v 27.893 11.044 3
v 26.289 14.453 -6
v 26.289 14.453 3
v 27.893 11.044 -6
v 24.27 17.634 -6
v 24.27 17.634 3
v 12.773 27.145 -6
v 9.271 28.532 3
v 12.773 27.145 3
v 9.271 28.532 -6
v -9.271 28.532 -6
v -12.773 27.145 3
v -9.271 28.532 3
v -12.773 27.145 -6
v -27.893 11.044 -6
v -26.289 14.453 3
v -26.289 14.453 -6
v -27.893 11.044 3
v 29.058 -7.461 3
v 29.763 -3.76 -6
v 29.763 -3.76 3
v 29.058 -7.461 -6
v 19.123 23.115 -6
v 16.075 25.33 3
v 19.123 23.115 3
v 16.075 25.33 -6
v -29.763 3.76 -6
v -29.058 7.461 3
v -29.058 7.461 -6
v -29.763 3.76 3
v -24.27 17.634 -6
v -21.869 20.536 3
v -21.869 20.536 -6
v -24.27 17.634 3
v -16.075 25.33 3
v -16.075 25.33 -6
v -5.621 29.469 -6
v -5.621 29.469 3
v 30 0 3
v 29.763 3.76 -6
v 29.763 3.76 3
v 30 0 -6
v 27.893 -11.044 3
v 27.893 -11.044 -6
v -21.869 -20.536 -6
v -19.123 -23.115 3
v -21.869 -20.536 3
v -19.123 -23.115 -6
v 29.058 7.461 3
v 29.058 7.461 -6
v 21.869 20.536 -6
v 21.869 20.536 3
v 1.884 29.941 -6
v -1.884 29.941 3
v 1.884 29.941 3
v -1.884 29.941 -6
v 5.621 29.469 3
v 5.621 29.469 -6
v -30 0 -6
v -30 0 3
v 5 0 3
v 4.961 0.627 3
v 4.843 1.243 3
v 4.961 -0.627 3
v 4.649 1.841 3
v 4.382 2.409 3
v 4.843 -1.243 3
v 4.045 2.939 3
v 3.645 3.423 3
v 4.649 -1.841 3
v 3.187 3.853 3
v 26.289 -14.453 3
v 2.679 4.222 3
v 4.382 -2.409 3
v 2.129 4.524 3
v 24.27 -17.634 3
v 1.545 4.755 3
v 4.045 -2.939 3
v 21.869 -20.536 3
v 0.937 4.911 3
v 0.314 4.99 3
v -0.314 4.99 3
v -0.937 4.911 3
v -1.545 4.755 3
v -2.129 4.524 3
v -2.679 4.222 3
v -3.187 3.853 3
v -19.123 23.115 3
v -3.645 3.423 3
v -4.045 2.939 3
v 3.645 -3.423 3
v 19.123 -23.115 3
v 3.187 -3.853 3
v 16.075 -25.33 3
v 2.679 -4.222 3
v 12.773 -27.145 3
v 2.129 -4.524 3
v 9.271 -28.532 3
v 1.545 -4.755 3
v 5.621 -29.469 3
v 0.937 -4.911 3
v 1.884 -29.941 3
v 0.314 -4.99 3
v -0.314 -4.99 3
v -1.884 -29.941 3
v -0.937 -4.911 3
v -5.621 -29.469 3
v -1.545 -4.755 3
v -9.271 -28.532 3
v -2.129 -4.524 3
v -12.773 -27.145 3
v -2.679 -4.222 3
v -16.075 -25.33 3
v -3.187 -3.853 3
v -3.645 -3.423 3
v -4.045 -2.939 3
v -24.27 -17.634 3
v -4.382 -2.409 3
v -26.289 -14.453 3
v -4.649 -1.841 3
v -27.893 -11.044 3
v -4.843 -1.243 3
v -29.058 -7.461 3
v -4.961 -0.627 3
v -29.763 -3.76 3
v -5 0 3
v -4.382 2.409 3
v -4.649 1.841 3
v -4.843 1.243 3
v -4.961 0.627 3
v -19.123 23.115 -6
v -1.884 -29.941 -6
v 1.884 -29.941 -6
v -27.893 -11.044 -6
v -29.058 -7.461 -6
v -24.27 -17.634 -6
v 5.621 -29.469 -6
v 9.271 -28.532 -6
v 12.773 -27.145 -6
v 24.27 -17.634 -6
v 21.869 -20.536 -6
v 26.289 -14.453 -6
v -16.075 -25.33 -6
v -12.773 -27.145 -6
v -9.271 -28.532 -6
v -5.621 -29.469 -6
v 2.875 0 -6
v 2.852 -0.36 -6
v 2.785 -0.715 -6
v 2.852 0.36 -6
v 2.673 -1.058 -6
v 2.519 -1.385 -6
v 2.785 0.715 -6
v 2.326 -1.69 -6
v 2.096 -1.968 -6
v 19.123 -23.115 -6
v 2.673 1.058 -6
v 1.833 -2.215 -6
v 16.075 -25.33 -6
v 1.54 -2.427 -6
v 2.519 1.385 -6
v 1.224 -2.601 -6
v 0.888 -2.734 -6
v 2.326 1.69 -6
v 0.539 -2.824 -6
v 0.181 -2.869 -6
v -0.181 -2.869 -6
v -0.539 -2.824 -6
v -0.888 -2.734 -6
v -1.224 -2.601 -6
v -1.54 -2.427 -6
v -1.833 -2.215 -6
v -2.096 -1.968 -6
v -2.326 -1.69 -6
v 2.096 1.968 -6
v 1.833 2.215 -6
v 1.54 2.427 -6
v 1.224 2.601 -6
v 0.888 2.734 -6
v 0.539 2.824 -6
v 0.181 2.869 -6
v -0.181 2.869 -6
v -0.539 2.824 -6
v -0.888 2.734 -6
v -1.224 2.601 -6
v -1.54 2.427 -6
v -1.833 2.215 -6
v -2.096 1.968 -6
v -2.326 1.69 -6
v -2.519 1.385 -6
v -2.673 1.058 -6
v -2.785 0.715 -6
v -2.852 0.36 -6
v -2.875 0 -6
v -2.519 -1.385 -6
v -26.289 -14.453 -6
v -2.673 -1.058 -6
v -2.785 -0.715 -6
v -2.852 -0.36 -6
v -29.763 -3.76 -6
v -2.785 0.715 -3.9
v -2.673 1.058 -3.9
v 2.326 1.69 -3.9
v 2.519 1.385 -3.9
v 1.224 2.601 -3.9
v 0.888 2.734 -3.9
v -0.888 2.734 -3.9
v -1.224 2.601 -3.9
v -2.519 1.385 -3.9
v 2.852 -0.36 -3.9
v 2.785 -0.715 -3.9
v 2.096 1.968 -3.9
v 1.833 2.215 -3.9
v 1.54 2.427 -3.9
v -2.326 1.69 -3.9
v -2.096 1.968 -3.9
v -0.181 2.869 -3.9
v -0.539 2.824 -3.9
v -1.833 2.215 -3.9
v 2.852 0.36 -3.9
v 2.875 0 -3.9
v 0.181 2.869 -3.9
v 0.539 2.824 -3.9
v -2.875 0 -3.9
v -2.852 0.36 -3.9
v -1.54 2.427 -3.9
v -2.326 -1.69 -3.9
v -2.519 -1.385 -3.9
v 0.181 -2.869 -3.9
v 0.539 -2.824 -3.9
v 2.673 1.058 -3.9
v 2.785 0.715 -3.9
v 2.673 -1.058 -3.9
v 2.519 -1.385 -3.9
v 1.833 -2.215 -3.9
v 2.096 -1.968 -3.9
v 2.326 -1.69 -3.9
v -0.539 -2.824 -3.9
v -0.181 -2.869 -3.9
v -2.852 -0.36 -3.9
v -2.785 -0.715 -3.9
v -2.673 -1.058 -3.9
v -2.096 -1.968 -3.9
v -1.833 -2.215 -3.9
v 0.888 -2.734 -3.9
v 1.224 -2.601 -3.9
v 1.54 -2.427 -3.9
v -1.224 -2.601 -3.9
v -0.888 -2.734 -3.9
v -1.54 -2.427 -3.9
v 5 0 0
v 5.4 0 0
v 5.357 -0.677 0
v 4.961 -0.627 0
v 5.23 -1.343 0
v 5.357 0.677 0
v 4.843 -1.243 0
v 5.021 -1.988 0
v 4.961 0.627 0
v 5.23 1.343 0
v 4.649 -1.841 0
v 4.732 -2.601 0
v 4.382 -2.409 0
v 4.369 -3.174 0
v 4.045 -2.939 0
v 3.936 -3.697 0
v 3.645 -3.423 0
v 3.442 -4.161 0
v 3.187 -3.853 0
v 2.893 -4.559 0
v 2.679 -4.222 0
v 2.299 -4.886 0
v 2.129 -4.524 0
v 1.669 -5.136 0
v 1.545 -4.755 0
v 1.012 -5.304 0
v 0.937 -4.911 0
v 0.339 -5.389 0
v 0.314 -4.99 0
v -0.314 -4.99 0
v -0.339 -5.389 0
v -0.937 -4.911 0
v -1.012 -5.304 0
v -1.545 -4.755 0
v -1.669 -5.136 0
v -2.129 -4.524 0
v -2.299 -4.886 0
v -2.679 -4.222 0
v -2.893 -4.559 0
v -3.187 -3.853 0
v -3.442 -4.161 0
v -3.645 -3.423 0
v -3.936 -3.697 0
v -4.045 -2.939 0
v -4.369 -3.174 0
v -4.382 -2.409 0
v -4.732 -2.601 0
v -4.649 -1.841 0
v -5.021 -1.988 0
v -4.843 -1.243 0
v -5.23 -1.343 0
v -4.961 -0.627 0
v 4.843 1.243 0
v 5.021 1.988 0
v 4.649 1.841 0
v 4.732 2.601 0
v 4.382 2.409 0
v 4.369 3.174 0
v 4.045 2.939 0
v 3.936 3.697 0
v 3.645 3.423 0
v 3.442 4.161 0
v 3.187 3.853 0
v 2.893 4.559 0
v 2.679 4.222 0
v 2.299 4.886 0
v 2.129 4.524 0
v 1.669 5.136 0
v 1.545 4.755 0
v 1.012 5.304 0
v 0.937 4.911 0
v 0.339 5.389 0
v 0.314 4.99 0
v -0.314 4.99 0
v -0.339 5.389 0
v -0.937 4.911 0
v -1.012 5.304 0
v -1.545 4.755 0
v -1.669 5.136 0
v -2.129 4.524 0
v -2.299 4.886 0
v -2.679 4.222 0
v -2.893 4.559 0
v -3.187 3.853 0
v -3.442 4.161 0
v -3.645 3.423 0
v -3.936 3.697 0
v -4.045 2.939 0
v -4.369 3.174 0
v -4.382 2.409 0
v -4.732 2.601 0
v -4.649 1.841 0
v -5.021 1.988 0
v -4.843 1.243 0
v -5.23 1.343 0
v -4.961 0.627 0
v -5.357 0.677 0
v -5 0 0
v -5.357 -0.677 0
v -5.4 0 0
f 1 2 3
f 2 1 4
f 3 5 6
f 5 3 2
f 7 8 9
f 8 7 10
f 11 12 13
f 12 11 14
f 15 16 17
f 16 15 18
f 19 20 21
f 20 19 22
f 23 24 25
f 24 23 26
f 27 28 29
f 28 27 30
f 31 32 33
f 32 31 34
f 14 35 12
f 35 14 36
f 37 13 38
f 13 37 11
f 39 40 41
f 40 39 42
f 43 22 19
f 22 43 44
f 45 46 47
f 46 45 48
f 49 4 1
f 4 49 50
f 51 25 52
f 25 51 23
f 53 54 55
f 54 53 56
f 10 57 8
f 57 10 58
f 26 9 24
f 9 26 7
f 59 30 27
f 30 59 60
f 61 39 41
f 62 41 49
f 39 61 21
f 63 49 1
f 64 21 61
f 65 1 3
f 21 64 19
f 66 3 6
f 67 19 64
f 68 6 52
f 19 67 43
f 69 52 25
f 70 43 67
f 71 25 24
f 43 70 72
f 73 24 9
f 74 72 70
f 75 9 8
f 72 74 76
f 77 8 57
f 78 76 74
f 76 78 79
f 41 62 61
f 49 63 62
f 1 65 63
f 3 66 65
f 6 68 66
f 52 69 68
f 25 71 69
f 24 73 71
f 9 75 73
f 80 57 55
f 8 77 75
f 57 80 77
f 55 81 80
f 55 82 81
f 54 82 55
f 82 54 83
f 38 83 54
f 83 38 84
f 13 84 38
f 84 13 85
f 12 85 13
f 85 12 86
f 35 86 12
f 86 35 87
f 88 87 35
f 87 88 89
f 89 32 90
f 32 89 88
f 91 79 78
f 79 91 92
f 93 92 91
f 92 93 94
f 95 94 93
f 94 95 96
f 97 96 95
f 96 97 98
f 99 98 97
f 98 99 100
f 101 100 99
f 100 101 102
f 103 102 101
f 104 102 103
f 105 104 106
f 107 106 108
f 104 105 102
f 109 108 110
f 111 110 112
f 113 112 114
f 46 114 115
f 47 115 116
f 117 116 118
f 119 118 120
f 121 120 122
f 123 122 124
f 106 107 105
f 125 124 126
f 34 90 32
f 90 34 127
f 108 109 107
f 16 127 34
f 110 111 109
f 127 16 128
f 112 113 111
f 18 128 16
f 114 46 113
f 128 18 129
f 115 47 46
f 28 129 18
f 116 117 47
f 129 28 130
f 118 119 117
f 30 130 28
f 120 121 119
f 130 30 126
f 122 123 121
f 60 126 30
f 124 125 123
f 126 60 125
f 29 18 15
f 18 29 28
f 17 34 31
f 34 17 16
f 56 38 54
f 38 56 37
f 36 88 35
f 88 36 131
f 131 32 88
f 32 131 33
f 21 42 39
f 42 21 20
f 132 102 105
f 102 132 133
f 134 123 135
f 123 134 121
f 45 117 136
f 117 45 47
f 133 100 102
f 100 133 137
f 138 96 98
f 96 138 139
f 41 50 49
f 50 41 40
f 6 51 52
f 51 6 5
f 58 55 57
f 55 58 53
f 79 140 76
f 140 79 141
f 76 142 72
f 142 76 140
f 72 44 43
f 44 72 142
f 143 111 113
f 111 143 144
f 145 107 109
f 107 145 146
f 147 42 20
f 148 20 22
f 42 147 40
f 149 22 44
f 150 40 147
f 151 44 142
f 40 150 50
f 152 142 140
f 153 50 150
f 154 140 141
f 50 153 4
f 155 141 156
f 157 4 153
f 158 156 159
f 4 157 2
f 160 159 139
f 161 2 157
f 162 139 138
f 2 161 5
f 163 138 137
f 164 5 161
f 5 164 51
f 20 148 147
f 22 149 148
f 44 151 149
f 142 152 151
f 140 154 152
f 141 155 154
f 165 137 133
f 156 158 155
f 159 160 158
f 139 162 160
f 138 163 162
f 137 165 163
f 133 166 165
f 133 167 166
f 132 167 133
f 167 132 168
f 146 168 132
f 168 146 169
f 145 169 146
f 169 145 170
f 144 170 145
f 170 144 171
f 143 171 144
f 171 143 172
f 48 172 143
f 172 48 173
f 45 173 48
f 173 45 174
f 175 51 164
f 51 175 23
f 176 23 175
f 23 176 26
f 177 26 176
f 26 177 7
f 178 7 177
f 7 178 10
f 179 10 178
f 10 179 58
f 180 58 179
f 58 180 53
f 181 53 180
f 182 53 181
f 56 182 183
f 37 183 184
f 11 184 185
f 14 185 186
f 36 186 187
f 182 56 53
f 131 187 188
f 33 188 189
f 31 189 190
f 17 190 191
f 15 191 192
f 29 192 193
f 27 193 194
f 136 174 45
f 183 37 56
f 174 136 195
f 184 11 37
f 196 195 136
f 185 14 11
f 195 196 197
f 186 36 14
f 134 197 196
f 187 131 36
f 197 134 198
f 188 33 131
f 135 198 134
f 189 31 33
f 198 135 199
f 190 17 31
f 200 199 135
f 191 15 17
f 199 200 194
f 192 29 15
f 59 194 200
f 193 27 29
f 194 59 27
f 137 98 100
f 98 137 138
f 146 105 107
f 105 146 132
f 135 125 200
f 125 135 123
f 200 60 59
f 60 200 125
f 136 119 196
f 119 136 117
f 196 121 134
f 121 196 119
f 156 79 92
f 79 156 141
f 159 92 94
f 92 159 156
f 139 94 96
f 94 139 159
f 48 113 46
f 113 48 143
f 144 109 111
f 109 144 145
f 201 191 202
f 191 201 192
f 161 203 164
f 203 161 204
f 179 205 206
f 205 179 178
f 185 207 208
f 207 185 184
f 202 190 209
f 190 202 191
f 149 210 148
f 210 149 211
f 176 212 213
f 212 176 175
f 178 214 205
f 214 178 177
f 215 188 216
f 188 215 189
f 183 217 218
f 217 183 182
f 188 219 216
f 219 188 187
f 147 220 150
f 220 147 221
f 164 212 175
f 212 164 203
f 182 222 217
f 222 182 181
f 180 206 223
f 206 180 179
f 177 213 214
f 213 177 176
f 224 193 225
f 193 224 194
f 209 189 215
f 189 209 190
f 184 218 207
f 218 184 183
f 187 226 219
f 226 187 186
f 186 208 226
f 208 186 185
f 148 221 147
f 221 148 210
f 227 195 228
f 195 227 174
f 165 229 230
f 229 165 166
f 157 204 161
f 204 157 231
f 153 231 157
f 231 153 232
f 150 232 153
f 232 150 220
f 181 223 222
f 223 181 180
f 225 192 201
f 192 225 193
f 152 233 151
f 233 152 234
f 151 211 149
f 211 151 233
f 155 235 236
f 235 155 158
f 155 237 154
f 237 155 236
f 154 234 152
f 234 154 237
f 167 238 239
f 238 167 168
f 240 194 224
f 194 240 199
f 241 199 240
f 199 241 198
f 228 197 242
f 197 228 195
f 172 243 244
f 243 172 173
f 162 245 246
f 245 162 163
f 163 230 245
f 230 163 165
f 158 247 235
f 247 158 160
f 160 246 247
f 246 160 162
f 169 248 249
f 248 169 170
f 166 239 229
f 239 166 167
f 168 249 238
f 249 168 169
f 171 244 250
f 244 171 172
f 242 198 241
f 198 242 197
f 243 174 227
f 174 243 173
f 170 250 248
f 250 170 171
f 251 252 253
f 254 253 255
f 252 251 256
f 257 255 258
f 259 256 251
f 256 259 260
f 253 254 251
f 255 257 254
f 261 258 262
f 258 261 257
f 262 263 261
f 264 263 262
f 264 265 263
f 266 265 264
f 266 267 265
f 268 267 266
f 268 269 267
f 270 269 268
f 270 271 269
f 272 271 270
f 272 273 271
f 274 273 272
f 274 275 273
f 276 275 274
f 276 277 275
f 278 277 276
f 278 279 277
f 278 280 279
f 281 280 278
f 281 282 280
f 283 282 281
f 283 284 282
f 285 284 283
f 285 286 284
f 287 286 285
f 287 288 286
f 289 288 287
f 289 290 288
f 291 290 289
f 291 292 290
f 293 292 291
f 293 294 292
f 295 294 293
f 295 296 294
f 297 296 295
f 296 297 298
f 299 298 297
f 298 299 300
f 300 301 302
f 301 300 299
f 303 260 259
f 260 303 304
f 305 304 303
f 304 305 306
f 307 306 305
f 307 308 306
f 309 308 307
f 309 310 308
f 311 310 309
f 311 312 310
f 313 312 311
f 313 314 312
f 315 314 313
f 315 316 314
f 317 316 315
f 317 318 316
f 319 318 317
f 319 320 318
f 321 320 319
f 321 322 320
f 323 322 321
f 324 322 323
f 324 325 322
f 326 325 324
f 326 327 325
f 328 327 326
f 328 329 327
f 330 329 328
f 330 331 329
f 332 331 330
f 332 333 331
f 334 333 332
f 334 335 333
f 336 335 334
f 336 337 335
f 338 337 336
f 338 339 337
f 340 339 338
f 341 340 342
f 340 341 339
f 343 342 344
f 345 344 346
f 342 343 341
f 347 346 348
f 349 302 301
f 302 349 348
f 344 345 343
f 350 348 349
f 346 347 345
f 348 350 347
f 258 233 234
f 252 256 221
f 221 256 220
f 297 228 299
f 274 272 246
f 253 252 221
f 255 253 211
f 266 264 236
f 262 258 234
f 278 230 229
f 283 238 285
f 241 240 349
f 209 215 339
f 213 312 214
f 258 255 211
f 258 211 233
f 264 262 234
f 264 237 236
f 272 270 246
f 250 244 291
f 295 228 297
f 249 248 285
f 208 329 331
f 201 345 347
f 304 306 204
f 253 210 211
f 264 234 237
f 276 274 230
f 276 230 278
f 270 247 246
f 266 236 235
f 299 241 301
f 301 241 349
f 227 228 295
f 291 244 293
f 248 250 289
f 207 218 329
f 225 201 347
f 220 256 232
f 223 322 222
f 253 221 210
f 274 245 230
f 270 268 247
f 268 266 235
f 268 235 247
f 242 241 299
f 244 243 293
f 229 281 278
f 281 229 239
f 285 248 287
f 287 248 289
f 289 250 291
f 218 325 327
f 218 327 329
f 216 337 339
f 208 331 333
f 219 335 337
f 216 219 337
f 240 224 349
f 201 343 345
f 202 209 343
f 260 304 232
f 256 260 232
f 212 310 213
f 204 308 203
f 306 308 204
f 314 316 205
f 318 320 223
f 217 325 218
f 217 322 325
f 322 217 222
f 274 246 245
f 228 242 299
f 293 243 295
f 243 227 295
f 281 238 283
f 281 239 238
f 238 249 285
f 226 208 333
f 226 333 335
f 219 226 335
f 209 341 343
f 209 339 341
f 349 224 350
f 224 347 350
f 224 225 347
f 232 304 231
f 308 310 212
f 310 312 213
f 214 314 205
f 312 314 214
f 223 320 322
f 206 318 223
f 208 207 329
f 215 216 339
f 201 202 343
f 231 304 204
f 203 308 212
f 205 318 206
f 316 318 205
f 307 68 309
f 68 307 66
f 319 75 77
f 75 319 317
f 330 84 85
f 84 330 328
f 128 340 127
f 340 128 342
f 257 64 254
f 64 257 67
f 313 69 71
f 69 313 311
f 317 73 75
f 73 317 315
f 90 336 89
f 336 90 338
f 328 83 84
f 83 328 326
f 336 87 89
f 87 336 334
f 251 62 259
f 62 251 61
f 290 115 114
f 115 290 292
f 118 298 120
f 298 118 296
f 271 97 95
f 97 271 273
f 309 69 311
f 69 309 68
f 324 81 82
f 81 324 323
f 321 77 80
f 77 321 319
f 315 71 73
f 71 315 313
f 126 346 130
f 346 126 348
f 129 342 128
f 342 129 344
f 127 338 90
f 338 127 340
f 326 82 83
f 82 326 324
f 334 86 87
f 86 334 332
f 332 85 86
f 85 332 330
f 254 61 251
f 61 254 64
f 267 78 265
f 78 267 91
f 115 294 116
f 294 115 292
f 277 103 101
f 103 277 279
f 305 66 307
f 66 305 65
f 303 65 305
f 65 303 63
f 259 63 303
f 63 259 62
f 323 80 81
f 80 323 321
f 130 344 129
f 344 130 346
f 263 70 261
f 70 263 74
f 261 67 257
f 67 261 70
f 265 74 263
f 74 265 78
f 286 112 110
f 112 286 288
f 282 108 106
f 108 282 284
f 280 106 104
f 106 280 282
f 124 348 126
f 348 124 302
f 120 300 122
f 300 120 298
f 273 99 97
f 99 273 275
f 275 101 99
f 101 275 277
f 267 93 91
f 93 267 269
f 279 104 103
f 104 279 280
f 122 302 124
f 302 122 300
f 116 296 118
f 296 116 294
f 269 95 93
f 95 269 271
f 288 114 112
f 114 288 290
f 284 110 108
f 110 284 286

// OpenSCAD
$fn = 50;


difference() {
	union() {
		translate(v = [0, 0, -6.0000000000]) {
			cylinder(h = 9, r = 30.0000000000);
		}
		#translate(v = [0, 0, -9.0000000000]) {
			cylinder(h = 9, r = 2.8750000000);
		}
	}
	union() {
		translate(v = [0, 0, 0]) {
			rotate(a = [0, 0, 0]) {
				difference() {
					union() {
						translate(v = [0, 0, -9.0000000000]) {
							cylinder(h = 9, r = 2.6000000000);
						}
						translate(v = [0, 0, -3.9000000000]) {
							cylinder(h = 3.9000000000, r1 = 2.8750000000, r2 = 5.4000000000);
						}
						translate(v = [0, 0, -9.0000000000]) {
							cylinder(h = 9, r = 2.8750000000);
						}
						translate(v = [0, 0, -9.0000000000]) {
							cylinder(h = 9, r = 2.6000000000);
						}
					}
					union();
				}
			}
		}
		#cylinder(h = 3, r = 5.0000000000);
	}
}
